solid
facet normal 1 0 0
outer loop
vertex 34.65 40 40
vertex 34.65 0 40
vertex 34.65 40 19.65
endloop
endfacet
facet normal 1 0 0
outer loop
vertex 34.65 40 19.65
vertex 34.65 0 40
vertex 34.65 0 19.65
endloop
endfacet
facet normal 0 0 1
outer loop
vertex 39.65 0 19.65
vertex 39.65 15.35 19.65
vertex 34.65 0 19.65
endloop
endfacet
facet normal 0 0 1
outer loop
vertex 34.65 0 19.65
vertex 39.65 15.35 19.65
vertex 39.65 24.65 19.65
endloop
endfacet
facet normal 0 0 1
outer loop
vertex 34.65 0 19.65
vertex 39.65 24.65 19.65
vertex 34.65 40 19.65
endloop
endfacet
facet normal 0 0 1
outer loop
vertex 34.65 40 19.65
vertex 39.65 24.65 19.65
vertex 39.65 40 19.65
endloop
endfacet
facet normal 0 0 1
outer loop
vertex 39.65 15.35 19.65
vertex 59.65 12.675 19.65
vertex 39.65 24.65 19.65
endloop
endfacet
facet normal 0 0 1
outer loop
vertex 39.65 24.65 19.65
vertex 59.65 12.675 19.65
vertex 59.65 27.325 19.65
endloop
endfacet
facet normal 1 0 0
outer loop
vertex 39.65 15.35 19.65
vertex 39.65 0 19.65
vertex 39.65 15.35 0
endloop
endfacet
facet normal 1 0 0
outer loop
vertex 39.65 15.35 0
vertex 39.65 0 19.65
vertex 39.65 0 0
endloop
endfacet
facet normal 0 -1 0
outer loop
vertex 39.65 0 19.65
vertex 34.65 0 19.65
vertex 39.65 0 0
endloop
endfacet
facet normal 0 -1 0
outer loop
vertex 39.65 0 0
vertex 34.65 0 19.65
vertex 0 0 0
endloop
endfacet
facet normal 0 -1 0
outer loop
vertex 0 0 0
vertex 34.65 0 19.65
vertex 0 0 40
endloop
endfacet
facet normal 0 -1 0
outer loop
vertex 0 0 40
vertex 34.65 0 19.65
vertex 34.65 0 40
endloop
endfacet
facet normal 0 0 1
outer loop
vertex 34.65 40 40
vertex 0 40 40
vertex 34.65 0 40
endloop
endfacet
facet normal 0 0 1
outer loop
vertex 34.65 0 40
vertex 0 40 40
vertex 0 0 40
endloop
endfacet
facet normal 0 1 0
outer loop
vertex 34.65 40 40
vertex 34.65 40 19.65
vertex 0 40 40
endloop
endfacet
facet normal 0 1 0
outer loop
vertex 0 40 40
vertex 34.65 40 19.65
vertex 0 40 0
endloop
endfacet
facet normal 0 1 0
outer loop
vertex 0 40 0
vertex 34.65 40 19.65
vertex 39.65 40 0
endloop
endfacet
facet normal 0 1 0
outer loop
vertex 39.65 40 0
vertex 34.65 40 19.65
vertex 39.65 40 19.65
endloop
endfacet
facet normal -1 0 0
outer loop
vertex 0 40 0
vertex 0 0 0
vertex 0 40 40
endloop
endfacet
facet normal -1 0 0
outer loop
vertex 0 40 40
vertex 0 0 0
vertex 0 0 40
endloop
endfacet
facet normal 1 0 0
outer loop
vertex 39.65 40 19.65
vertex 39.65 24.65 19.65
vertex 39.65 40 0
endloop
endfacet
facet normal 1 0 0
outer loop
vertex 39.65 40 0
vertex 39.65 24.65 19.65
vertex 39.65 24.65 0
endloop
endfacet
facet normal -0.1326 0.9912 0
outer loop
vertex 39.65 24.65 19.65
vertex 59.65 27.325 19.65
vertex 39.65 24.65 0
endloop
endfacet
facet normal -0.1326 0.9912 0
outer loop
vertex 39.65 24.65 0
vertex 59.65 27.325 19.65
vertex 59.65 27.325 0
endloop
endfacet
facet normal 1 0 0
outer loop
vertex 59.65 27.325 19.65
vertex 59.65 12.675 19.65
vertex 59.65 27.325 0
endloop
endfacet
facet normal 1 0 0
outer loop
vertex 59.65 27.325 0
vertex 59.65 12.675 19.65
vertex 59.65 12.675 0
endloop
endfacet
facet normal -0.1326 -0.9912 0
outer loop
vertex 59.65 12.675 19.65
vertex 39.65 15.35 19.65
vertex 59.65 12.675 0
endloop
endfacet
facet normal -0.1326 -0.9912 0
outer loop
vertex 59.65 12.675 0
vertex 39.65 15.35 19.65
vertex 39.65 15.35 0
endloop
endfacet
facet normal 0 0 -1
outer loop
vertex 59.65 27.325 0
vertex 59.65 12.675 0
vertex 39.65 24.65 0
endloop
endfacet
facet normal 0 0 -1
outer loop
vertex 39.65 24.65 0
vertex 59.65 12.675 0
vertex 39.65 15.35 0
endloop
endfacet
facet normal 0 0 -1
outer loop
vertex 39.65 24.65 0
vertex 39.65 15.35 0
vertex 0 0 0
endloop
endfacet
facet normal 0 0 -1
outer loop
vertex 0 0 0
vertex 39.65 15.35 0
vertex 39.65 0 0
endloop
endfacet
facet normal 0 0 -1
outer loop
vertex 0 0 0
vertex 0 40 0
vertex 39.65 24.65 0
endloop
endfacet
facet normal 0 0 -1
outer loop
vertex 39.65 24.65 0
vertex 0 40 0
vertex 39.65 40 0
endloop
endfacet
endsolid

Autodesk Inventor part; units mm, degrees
ref_plane "YZ Plane" through (0, 0, 0) normal (1, 0, 0) x (0, 1, 0)
ref_plane "XZ Plane" through (0, 0, 0) normal (0, 1, 0) x (-1, 0, 0)
ref_plane "XY Plane" through (0, 0, 0) normal (0, 0, 1) x (1, 0, 0)
sketch "Boceto1" plane through (0, 0, 0) normal (0, 0, 1) x (1, 0, 0)
  line L0 (0, 0) -> (0, 40)
  line L1 (0, 40) -> (39.65, 40)
  line L2 (0, 0) -> (39.65, 0)
  line L3 (39.65, 0) -> (39.65, 15.35)
  line L4 (39.65, 40) -> (39.65, 24.65)
  line L5 (39.65, 0) -> (59.65, 0) construction
  line L6 (39.65, 40) -> (59.65, 40) construction
  line L7 (59.65, 40) -> (59.65, 27.325) construction
  line L8 (59.65, 0) -> (59.65, 12.675) construction
  line L9 (39.65, 24.65) -> (59.65, 27.325)
  line L10 (39.65, 15.35) -> (59.65, 12.675)
  line L11 (59.65, 12.675) -> (59.65, 27.325)
  dimension "d0" = 40
  dimension "d1" = 39.65
  dimension "d2" = 39.65
  dimension "d3" = 15.35
  dimension "d4" = 15.35
  dimension "d5" = 20
  dimension "d6" = 20
  dimension "d7" = 12.675
  dimension "d8" = 12.675
extrude "Extrusión1" add sketch "Boceto1" along normal blind 40
sketch "Boceto2" plane through (0, 0, 40) normal (0, 0, 1) x (1, 0, 0)
  line L0 (0, 0) -> (34.65, 0)
  line L1 (0, 0) -> (39.65, 0) projected
  line L2 (34.65, 0) -> (59.65, 0)
  line L3 (59.65, 0) -> (59.65, 40)
  line L4 (59.65, 40) -> (34.65, 40)
  line L5 (39.65, 40) -> (0, 40) projected
  line L6 (34.65, 0) -> (34.65, 40)
  dimension "d11" = 34.65
  dimension "d12" = 25
  dimension "d13" = 40
  dimension "d14" = 25
extrude "Extrusión2" cut sketch "Boceto2" against normal blind 20.35
equation "\"d12\" = Ancho_corte"
equation "\"d14\" = Ancho_corte"
equation "\"Largo_corte\" = 35"
equation "\"Ancho_corte\" = 25"
equation "\"Angulo_0\" = 0"
properties part number "Macho_parametrizado"
